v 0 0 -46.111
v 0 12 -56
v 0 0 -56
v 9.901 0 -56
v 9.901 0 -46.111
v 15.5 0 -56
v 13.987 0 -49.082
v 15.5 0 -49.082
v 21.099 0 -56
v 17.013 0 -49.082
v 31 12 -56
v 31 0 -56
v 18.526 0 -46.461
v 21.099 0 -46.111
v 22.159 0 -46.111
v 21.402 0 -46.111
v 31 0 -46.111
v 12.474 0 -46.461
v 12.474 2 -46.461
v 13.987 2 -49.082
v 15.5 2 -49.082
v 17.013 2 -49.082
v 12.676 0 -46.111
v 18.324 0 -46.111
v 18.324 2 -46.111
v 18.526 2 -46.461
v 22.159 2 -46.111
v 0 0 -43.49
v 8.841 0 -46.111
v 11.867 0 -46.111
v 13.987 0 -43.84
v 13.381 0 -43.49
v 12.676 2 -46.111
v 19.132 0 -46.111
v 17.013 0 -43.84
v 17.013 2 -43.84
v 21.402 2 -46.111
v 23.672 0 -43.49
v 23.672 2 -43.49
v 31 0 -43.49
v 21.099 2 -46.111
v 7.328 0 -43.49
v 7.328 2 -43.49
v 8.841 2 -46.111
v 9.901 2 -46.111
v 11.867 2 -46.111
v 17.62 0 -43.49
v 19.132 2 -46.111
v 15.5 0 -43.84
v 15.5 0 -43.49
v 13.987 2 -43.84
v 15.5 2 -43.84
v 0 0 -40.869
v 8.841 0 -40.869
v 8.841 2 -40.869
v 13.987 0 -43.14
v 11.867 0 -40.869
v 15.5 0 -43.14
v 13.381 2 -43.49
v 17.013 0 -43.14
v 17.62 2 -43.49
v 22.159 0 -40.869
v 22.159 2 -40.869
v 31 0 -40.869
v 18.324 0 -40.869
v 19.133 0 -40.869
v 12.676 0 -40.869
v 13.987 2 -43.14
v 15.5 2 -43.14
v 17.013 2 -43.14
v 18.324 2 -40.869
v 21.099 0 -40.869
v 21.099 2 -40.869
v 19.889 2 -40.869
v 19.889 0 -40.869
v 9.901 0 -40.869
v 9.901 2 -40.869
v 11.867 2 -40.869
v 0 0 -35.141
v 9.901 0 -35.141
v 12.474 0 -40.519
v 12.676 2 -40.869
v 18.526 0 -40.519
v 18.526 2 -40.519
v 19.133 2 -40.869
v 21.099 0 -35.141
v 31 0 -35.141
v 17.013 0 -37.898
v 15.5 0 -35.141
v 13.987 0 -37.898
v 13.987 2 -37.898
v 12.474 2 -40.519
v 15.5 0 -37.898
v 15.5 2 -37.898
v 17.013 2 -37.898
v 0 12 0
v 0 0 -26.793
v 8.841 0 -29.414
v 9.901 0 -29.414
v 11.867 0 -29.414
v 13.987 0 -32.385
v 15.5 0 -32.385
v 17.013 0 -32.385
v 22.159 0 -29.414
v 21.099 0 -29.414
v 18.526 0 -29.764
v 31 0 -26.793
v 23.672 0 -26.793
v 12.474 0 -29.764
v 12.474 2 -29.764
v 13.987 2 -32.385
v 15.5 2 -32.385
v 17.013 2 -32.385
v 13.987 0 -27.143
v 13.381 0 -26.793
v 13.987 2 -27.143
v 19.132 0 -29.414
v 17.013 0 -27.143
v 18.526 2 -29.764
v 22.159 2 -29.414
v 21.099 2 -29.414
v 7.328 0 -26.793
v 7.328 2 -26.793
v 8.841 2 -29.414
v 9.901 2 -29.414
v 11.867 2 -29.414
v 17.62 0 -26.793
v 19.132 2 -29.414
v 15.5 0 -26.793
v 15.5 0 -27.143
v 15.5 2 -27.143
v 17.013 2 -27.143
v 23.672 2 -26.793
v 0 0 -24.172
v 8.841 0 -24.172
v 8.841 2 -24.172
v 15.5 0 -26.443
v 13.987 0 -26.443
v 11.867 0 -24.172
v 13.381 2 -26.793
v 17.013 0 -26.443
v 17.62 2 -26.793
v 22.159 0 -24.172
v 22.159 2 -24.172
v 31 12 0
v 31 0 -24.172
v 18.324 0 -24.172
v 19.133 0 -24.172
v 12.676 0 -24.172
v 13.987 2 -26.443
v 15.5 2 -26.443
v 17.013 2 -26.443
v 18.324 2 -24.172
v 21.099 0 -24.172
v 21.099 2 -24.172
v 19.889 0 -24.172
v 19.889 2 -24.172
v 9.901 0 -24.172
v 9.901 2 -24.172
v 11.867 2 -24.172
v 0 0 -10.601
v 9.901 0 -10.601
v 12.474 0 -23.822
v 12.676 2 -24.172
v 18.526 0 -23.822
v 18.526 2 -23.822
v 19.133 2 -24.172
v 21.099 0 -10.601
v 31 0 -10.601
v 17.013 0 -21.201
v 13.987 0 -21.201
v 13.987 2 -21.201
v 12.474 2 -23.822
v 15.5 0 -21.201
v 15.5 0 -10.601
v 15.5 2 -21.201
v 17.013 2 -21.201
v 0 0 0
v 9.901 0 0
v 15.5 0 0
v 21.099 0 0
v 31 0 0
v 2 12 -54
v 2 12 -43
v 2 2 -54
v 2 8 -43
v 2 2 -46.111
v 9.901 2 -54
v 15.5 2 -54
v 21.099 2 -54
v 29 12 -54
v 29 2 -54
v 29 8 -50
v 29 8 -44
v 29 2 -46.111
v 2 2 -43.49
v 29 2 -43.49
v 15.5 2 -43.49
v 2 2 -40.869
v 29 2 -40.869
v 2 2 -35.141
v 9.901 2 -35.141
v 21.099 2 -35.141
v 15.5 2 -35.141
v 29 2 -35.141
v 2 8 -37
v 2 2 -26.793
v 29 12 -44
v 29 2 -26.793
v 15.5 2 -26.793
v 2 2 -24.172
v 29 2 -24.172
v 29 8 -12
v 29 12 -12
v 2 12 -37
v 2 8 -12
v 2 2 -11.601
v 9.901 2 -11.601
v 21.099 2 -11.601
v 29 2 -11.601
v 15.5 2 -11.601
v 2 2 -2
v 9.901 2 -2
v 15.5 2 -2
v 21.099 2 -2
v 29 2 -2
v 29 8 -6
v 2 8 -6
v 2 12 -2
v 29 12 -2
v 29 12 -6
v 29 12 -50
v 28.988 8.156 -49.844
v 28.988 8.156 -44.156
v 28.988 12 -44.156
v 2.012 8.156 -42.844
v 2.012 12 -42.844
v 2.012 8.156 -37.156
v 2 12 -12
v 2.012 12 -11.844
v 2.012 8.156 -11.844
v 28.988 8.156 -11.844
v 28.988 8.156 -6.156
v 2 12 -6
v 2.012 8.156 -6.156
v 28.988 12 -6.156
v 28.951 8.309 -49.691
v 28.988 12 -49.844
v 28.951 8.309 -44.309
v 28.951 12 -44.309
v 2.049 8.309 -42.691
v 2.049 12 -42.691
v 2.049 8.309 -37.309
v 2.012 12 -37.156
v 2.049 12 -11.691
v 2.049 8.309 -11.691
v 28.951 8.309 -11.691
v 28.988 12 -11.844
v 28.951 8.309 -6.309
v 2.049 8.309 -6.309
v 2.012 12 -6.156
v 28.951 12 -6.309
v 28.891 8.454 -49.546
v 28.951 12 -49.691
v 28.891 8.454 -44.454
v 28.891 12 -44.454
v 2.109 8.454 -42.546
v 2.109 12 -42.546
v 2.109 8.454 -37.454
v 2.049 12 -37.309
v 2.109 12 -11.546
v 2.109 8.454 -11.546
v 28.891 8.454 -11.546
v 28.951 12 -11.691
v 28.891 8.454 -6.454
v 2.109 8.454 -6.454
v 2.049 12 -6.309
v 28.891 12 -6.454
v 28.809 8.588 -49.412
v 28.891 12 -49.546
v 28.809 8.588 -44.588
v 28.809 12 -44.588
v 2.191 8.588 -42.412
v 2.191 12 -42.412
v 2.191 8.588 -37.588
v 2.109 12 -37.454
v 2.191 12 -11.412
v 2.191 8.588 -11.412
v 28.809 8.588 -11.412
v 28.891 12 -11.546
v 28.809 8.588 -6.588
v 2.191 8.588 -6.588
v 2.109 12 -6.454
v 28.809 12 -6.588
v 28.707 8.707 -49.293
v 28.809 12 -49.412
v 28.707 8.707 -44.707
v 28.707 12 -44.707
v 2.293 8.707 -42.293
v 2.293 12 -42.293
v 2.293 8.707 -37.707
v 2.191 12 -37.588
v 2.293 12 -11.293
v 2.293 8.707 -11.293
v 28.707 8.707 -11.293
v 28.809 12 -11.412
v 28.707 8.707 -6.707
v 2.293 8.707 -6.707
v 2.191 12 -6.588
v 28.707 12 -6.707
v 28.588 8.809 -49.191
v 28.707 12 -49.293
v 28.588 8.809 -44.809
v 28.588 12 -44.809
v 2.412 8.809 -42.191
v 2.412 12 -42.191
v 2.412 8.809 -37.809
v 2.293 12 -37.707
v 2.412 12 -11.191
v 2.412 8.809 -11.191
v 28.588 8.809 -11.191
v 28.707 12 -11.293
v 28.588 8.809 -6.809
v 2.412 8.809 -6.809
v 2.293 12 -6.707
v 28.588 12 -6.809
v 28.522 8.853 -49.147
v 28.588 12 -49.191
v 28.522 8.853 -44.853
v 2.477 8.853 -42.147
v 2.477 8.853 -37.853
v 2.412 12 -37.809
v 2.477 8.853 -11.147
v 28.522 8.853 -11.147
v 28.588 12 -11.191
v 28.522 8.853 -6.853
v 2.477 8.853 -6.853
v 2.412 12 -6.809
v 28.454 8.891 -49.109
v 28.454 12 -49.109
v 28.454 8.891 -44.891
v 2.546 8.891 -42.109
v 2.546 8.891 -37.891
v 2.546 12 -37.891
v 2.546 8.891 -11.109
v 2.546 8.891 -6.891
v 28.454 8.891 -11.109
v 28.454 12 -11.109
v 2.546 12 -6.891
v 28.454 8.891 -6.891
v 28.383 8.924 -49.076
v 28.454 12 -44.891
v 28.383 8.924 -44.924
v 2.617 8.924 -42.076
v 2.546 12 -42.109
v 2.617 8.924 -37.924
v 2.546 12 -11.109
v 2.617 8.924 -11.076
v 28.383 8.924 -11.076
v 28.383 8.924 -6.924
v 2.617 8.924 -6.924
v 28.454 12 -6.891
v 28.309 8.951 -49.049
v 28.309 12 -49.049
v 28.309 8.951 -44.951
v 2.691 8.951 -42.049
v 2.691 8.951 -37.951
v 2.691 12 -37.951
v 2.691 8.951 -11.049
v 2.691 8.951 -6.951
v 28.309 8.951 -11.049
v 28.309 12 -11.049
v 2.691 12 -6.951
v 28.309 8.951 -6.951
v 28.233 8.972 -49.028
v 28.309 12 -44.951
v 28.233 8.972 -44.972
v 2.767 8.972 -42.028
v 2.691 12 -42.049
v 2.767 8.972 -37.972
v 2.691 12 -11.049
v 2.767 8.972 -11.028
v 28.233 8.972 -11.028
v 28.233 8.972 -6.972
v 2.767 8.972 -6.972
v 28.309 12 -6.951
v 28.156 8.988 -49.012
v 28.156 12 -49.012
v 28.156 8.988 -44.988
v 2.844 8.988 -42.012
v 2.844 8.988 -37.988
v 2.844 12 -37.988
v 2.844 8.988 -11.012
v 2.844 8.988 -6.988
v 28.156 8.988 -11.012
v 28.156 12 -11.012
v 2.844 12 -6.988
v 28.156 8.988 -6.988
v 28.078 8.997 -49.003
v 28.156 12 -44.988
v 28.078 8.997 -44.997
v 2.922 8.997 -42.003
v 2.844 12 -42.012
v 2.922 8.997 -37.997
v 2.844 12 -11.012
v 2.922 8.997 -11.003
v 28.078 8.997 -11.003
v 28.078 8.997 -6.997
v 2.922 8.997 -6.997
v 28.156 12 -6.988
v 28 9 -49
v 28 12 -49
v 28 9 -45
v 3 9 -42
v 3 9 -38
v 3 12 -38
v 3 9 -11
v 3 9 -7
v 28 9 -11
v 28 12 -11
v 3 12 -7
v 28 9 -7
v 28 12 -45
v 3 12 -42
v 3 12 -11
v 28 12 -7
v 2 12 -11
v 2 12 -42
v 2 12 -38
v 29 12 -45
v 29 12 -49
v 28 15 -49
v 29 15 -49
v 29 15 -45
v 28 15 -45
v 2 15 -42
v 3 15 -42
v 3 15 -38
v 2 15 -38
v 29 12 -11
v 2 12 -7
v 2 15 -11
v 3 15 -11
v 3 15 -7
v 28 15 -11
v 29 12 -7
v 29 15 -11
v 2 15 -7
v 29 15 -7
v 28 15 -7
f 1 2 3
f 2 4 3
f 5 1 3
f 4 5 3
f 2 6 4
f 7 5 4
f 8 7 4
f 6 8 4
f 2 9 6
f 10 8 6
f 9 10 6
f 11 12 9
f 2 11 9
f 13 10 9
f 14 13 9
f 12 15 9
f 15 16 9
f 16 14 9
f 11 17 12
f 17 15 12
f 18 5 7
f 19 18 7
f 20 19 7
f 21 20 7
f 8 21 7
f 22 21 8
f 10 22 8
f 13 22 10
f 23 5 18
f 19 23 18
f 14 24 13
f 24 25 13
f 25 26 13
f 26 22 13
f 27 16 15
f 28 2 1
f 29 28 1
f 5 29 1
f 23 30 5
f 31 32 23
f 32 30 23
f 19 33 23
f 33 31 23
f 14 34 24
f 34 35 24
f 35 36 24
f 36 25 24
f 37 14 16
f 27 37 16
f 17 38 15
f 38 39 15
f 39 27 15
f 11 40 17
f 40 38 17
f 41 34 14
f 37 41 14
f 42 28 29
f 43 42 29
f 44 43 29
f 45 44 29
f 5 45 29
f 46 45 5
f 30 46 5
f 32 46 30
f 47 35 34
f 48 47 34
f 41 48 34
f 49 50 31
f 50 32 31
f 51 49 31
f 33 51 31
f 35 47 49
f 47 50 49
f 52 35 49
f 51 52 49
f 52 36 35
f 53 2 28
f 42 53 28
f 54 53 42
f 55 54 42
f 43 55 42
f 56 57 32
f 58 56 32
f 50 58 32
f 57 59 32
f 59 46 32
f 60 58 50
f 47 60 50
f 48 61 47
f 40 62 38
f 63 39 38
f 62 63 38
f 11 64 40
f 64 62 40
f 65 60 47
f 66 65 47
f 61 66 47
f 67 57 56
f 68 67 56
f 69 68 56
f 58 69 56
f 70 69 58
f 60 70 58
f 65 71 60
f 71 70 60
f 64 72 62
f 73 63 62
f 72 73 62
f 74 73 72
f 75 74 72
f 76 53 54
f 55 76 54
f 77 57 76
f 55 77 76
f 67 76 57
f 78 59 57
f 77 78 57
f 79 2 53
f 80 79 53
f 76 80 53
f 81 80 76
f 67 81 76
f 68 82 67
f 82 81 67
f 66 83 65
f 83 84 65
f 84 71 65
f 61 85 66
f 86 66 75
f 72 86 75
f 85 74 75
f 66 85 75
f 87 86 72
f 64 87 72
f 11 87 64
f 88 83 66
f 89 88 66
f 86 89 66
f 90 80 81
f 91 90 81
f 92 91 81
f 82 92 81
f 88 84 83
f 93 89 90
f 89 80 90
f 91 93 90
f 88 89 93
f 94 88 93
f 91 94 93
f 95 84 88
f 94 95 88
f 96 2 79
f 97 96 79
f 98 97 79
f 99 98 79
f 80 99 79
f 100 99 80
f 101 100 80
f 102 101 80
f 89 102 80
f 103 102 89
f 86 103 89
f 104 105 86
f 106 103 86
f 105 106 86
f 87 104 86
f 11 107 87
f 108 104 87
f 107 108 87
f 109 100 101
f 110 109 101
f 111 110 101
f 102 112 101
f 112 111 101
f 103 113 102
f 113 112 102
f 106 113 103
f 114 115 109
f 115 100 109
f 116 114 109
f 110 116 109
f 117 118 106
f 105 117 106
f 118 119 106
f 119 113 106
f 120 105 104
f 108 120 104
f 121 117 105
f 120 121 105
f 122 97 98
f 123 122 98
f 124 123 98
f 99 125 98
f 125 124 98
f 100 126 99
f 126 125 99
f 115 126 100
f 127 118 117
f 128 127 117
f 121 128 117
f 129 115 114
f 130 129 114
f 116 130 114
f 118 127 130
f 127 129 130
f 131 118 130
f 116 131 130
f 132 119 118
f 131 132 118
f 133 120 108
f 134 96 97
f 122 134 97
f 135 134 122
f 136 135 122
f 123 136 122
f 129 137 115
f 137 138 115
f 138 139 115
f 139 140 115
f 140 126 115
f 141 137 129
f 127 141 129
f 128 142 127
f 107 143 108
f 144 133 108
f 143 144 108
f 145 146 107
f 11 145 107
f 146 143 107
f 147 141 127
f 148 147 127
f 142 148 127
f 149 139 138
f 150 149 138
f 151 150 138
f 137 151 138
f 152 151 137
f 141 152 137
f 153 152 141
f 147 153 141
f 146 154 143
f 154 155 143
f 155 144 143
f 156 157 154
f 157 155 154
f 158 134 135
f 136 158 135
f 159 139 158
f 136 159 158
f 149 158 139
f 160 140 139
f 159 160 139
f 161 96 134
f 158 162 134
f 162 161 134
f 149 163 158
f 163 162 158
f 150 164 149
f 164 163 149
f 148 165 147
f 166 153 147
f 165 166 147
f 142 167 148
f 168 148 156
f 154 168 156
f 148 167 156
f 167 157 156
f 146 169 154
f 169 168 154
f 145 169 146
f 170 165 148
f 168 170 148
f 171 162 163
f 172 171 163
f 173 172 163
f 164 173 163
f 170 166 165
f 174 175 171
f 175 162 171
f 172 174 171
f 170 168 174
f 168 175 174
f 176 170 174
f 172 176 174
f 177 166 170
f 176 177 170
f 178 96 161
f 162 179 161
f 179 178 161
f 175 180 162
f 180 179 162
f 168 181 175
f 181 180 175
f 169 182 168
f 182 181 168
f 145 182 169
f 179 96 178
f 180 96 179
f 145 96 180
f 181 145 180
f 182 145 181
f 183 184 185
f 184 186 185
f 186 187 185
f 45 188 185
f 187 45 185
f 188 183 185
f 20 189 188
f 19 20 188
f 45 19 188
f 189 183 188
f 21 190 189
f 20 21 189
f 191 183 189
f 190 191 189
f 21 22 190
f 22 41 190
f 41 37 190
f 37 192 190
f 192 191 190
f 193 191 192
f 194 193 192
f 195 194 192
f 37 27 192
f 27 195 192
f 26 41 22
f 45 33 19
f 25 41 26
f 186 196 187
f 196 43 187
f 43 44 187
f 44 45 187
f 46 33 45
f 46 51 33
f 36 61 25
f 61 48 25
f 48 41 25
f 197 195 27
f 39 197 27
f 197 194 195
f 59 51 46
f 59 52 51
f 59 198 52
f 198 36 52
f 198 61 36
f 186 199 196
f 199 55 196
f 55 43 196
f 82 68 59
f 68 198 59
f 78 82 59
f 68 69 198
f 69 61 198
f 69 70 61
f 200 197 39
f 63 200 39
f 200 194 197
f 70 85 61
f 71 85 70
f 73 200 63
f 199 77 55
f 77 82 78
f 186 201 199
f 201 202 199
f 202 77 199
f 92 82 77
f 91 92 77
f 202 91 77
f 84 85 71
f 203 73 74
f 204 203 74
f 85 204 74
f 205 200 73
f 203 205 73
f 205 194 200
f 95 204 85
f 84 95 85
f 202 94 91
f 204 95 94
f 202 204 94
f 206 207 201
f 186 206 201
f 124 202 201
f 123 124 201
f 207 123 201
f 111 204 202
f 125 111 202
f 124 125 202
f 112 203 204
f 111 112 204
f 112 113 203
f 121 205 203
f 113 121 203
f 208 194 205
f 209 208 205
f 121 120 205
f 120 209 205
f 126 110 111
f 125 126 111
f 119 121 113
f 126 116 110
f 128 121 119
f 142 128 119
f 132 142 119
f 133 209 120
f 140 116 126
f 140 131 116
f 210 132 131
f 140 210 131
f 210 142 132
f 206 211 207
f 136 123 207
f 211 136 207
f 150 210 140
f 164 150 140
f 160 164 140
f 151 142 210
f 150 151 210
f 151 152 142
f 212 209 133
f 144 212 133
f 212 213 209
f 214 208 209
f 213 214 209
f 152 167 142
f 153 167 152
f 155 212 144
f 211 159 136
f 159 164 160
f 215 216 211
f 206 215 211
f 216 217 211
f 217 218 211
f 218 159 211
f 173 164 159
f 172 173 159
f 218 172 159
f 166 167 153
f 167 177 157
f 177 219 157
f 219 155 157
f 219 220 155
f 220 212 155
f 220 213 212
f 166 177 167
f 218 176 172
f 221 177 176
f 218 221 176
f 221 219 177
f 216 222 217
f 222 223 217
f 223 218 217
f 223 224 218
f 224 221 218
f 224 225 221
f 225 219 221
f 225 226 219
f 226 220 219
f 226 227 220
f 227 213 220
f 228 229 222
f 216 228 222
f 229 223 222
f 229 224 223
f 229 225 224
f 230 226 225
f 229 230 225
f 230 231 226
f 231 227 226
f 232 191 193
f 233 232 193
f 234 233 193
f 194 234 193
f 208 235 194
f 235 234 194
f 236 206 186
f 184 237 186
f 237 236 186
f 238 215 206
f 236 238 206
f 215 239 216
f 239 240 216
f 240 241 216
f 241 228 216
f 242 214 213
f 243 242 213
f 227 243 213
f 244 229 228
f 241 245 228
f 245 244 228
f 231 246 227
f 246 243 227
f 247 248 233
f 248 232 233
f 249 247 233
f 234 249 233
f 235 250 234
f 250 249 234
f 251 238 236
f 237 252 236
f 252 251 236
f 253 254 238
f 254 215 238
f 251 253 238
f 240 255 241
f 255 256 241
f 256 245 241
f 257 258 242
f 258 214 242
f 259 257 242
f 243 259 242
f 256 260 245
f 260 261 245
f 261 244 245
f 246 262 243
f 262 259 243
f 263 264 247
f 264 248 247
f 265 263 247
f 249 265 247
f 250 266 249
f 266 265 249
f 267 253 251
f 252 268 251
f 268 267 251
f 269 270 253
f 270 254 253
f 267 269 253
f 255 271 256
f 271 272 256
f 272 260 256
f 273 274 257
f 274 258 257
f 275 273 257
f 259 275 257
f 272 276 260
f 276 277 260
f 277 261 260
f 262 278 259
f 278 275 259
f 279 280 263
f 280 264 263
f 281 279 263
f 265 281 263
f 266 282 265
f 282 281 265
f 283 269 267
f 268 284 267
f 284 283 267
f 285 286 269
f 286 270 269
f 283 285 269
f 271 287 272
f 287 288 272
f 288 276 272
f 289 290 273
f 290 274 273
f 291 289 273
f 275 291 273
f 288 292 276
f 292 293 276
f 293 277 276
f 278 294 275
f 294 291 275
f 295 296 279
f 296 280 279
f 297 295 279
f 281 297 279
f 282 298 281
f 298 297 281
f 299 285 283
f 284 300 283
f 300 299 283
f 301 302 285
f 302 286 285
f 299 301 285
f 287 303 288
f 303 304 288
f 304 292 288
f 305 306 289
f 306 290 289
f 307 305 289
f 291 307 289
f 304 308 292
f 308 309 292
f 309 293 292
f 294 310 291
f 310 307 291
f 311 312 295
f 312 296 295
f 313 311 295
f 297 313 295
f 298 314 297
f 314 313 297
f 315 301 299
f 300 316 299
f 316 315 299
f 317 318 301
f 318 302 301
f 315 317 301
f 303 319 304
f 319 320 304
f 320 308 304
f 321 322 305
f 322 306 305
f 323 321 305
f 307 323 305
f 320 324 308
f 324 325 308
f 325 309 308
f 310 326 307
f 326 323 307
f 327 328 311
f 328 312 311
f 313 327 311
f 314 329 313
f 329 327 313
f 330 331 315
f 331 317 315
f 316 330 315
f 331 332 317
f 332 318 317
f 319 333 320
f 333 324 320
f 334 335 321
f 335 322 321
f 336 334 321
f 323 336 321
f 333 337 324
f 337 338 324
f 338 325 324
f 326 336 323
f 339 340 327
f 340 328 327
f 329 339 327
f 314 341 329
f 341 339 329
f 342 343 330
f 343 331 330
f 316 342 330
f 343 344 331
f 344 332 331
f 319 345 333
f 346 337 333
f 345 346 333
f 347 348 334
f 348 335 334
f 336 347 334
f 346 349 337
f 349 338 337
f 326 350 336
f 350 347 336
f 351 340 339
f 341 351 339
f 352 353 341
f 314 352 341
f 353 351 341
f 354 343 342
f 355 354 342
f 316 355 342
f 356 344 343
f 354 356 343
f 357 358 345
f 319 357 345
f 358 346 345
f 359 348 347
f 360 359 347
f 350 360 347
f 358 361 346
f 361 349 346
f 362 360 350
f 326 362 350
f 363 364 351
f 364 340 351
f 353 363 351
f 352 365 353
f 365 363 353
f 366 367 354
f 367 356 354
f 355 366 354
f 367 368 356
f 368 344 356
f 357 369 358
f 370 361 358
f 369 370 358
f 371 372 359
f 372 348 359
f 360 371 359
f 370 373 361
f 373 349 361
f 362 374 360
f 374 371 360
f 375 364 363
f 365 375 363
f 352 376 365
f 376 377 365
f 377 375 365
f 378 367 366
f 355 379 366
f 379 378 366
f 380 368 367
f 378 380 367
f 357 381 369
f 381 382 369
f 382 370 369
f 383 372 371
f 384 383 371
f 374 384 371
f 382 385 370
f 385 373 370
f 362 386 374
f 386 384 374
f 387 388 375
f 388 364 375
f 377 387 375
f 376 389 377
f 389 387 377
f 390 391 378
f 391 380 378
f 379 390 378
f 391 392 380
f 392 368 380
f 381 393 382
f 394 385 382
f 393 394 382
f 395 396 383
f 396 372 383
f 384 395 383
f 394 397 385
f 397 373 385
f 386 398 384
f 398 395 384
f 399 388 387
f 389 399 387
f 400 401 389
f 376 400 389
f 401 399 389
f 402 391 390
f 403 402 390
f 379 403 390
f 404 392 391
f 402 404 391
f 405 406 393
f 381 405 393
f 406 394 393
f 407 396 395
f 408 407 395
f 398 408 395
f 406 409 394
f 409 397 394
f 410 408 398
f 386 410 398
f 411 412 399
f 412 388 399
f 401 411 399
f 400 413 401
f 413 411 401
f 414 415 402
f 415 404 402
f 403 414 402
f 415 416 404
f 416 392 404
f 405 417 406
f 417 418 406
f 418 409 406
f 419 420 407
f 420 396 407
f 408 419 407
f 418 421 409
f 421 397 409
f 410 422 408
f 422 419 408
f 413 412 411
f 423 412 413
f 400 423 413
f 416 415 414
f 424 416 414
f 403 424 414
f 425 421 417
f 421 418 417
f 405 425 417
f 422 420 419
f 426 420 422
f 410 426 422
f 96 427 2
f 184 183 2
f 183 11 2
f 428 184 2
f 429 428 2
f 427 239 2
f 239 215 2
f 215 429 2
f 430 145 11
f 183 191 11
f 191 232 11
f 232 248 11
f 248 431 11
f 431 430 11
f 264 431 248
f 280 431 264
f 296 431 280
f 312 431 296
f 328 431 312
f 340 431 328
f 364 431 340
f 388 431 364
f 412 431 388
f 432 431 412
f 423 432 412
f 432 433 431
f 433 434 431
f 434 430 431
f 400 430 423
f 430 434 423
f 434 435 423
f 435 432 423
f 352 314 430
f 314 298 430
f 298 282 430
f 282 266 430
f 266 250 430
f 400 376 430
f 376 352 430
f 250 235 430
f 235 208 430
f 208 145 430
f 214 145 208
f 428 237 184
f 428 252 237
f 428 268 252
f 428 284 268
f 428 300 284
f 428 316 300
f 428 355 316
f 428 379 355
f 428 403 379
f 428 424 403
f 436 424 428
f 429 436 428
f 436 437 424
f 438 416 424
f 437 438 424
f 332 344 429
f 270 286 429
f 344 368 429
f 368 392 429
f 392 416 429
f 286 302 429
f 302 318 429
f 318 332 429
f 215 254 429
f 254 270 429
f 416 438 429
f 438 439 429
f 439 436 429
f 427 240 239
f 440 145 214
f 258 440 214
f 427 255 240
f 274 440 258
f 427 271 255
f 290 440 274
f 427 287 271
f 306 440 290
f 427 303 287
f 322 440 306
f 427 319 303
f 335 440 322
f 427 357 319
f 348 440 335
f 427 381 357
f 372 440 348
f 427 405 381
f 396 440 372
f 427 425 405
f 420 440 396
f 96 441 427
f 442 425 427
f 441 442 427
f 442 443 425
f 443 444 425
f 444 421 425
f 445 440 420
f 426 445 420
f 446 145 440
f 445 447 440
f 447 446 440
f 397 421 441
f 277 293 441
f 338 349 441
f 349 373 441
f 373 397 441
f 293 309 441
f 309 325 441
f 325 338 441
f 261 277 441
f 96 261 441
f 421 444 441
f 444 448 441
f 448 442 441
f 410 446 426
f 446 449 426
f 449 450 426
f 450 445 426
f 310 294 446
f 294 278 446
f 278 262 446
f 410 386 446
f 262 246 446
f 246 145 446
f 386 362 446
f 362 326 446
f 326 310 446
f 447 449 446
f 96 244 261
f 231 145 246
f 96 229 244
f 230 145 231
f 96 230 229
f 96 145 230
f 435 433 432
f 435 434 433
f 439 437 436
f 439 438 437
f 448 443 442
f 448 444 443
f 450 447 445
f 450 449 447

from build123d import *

# Parameters (mm, degrees)
ESQUISSE1_W             = 31
ESQUISSE1_H             = 56
BOSS_EXTRU_1_DEPTH      = 2
ENL_V_MAT_EXTRU_1_DEPTH = 65.039050586
ESQUISSE6_W             = 31
ESQUISSE6_H             = 56
ESQUISSE6_W_2           = 27
ESQUISSE6_H_2           = 52
BOSS_EXTRU_3_DEPTH      = 10
ESQUISSE10_W            = 4
ESQUISSE10_H            = 6
BOSS_EXTRU_8_DEPTH      = 1
CONG_1_R                = 1
ESQUISSE11_W            = 4
ESQUISSE11_H            = 6
BOSS_EXTRU_11_DEPTH     = 1
CONG_2_R                = 1


with BuildPart() as part:
    # Esquisse1 → Boss.-Extru.1 (new body)
    with BuildSketch(Plane(origin=(0, 0, 0), x_dir=(1, 0, 0), z_dir=(0, 1, 0))):
        with Locations((15.5, 28)):
            Rectangle(ESQUISSE1_W, ESQUISSE1_H)
    extrude(amount=BOSS_EXTRU_1_DEPTH)

    # Esquisse2 → Enlèv. mat.-Extru.1 (cut, through all)
    with BuildSketch(Plane(origin=(0, 2, 0), x_dir=(1, 0, 0), z_dir=(0, 1, 0))):
        Polygon((13.380581824, 43.489934015), (11.867381431, 46.110873977), (8.840980645, 46.110873977), (7.327780252, 43.489934015), (8.840980645, 40.868994052), (11.867381431, 40.868994052), align=None)
        Polygon((13.380581824, 26.792968516), (11.867381431, 29.413908479), (8.840980645, 29.413908479), (7.327780252, 26.792968516), (8.840980645, 24.172028553), (11.867381431, 24.172028553), align=None)
        Polygon((18.526400786, 46.460873977), (17.013200393, 49.08181394), (13.986799607, 49.08181394), (12.473599214, 46.460873977), (13.986799607, 43.839934015), (17.013200393, 43.839934015), align=None)
        Polygon((18.526400786, 40.518994052), (17.013200393, 43.139934015), (13.986799607, 43.139934015), (12.473599214, 40.518994052), (13.986799607, 37.898054089), (17.013200393, 37.898054089), align=None)
        Polygon((23.672219675, 43.490211012), (22.158779402, 46.111012465), (19.132378628, 46.110735468), (17.619418128, 43.489657017), (19.132858402, 40.868855564), (22.159259175, 40.869132561), align=None)
        Polygon((18.526400786, 29.763908479), (17.013200393, 32.384848442), (13.986799607, 32.384848442), (12.473599214, 29.763908479), (13.986799607, 27.142968516), (17.013200393, 27.142968516), align=None)
        Polygon((18.526400786, 23.822028553), (17.013200393, 26.442968516), (13.986799607, 26.442968516), (12.473599214, 23.822028553), (13.986799607, 21.20108859), (17.013200393, 21.20108859), align=None)
        Polygon((23.672219675, 26.793245513), (22.158779402, 29.414046967), (19.132378628, 29.413769969), (17.619418128, 26.792691519), (19.132858402, 24.171890065), (22.159259175, 24.172167063), align=None)
    extrude(amount=-ENL_V_MAT_EXTRU_1_DEPTH, mode=Mode.SUBTRACT)

    # Esquisse6 → Boss.-Extru.3 (add)
    with BuildSketch(Plane(origin=(0, 2, 0), x_dir=(1, 0, 0), z_dir=(0, 1, 0))):
        with Locations((15.5, 28)):
            Rectangle(ESQUISSE6_W, ESQUISSE6_H)
        with Locations((15.5, 28)):
            Rectangle(ESQUISSE6_W_2, ESQUISSE6_H_2, mode=Mode.SUBTRACT)
    extrude(amount=BOSS_EXTRU_3_DEPTH)

    # Esquisse10 → Boss.-Extru.8 (add)
    with BuildSketch(Plane.ZY.offset(-29)):
        with Locations((-47, 12)):
            Rectangle(ESQUISSE10_W, ESQUISSE10_H)
        with Locations((-9, 12)):
            Rectangle(ESQUISSE10_W, ESQUISSE10_H)
    extrude(amount=BOSS_EXTRU_8_DEPTH)

    # Congé1
    cong_1_edges = [part.edges().sort_by_distance(p)[0] for p in [
        (29, 9, -9),
        (29, 10.5, -11),
        (29, 10.5, -7),
        (29, 9, -47),
        (29, 10.5, -45),
        (29, 10.5, -49),
    ]]
    fillet(cong_1_edges, radius=CONG_1_R - 0.0001)  # a hair under: the kernel refuses the full size

    # Esquisse11 → Boss.-Extru.11 (add)
    with BuildSketch(Plane(origin=(2, 0, 0), x_dir=(0, 0, -1), z_dir=(1, 0, 0))):
        with Locations((9, 12)):
            Rectangle(ESQUISSE11_W, ESQUISSE11_H)
        with Locations((40, 12)):
            Rectangle(ESQUISSE11_W, ESQUISSE11_H)
    extrude(amount=BOSS_EXTRU_11_DEPTH)

    # Congé2
    cong_2_edges = [part.edges().sort_by_distance(p)[0] for p in [
        (2, 10.5, -7),
        (2, 9, -9),
        (2, 10.5, -11),
        (2, 10.5, -42),
        (2, 9, -40),
        (2, 10.5, -38),
    ]]
    fillet(cong_2_edges, radius=CONG_2_R - 0.0001)  # a hair under: the kernel refuses the full size


solid = part.part
